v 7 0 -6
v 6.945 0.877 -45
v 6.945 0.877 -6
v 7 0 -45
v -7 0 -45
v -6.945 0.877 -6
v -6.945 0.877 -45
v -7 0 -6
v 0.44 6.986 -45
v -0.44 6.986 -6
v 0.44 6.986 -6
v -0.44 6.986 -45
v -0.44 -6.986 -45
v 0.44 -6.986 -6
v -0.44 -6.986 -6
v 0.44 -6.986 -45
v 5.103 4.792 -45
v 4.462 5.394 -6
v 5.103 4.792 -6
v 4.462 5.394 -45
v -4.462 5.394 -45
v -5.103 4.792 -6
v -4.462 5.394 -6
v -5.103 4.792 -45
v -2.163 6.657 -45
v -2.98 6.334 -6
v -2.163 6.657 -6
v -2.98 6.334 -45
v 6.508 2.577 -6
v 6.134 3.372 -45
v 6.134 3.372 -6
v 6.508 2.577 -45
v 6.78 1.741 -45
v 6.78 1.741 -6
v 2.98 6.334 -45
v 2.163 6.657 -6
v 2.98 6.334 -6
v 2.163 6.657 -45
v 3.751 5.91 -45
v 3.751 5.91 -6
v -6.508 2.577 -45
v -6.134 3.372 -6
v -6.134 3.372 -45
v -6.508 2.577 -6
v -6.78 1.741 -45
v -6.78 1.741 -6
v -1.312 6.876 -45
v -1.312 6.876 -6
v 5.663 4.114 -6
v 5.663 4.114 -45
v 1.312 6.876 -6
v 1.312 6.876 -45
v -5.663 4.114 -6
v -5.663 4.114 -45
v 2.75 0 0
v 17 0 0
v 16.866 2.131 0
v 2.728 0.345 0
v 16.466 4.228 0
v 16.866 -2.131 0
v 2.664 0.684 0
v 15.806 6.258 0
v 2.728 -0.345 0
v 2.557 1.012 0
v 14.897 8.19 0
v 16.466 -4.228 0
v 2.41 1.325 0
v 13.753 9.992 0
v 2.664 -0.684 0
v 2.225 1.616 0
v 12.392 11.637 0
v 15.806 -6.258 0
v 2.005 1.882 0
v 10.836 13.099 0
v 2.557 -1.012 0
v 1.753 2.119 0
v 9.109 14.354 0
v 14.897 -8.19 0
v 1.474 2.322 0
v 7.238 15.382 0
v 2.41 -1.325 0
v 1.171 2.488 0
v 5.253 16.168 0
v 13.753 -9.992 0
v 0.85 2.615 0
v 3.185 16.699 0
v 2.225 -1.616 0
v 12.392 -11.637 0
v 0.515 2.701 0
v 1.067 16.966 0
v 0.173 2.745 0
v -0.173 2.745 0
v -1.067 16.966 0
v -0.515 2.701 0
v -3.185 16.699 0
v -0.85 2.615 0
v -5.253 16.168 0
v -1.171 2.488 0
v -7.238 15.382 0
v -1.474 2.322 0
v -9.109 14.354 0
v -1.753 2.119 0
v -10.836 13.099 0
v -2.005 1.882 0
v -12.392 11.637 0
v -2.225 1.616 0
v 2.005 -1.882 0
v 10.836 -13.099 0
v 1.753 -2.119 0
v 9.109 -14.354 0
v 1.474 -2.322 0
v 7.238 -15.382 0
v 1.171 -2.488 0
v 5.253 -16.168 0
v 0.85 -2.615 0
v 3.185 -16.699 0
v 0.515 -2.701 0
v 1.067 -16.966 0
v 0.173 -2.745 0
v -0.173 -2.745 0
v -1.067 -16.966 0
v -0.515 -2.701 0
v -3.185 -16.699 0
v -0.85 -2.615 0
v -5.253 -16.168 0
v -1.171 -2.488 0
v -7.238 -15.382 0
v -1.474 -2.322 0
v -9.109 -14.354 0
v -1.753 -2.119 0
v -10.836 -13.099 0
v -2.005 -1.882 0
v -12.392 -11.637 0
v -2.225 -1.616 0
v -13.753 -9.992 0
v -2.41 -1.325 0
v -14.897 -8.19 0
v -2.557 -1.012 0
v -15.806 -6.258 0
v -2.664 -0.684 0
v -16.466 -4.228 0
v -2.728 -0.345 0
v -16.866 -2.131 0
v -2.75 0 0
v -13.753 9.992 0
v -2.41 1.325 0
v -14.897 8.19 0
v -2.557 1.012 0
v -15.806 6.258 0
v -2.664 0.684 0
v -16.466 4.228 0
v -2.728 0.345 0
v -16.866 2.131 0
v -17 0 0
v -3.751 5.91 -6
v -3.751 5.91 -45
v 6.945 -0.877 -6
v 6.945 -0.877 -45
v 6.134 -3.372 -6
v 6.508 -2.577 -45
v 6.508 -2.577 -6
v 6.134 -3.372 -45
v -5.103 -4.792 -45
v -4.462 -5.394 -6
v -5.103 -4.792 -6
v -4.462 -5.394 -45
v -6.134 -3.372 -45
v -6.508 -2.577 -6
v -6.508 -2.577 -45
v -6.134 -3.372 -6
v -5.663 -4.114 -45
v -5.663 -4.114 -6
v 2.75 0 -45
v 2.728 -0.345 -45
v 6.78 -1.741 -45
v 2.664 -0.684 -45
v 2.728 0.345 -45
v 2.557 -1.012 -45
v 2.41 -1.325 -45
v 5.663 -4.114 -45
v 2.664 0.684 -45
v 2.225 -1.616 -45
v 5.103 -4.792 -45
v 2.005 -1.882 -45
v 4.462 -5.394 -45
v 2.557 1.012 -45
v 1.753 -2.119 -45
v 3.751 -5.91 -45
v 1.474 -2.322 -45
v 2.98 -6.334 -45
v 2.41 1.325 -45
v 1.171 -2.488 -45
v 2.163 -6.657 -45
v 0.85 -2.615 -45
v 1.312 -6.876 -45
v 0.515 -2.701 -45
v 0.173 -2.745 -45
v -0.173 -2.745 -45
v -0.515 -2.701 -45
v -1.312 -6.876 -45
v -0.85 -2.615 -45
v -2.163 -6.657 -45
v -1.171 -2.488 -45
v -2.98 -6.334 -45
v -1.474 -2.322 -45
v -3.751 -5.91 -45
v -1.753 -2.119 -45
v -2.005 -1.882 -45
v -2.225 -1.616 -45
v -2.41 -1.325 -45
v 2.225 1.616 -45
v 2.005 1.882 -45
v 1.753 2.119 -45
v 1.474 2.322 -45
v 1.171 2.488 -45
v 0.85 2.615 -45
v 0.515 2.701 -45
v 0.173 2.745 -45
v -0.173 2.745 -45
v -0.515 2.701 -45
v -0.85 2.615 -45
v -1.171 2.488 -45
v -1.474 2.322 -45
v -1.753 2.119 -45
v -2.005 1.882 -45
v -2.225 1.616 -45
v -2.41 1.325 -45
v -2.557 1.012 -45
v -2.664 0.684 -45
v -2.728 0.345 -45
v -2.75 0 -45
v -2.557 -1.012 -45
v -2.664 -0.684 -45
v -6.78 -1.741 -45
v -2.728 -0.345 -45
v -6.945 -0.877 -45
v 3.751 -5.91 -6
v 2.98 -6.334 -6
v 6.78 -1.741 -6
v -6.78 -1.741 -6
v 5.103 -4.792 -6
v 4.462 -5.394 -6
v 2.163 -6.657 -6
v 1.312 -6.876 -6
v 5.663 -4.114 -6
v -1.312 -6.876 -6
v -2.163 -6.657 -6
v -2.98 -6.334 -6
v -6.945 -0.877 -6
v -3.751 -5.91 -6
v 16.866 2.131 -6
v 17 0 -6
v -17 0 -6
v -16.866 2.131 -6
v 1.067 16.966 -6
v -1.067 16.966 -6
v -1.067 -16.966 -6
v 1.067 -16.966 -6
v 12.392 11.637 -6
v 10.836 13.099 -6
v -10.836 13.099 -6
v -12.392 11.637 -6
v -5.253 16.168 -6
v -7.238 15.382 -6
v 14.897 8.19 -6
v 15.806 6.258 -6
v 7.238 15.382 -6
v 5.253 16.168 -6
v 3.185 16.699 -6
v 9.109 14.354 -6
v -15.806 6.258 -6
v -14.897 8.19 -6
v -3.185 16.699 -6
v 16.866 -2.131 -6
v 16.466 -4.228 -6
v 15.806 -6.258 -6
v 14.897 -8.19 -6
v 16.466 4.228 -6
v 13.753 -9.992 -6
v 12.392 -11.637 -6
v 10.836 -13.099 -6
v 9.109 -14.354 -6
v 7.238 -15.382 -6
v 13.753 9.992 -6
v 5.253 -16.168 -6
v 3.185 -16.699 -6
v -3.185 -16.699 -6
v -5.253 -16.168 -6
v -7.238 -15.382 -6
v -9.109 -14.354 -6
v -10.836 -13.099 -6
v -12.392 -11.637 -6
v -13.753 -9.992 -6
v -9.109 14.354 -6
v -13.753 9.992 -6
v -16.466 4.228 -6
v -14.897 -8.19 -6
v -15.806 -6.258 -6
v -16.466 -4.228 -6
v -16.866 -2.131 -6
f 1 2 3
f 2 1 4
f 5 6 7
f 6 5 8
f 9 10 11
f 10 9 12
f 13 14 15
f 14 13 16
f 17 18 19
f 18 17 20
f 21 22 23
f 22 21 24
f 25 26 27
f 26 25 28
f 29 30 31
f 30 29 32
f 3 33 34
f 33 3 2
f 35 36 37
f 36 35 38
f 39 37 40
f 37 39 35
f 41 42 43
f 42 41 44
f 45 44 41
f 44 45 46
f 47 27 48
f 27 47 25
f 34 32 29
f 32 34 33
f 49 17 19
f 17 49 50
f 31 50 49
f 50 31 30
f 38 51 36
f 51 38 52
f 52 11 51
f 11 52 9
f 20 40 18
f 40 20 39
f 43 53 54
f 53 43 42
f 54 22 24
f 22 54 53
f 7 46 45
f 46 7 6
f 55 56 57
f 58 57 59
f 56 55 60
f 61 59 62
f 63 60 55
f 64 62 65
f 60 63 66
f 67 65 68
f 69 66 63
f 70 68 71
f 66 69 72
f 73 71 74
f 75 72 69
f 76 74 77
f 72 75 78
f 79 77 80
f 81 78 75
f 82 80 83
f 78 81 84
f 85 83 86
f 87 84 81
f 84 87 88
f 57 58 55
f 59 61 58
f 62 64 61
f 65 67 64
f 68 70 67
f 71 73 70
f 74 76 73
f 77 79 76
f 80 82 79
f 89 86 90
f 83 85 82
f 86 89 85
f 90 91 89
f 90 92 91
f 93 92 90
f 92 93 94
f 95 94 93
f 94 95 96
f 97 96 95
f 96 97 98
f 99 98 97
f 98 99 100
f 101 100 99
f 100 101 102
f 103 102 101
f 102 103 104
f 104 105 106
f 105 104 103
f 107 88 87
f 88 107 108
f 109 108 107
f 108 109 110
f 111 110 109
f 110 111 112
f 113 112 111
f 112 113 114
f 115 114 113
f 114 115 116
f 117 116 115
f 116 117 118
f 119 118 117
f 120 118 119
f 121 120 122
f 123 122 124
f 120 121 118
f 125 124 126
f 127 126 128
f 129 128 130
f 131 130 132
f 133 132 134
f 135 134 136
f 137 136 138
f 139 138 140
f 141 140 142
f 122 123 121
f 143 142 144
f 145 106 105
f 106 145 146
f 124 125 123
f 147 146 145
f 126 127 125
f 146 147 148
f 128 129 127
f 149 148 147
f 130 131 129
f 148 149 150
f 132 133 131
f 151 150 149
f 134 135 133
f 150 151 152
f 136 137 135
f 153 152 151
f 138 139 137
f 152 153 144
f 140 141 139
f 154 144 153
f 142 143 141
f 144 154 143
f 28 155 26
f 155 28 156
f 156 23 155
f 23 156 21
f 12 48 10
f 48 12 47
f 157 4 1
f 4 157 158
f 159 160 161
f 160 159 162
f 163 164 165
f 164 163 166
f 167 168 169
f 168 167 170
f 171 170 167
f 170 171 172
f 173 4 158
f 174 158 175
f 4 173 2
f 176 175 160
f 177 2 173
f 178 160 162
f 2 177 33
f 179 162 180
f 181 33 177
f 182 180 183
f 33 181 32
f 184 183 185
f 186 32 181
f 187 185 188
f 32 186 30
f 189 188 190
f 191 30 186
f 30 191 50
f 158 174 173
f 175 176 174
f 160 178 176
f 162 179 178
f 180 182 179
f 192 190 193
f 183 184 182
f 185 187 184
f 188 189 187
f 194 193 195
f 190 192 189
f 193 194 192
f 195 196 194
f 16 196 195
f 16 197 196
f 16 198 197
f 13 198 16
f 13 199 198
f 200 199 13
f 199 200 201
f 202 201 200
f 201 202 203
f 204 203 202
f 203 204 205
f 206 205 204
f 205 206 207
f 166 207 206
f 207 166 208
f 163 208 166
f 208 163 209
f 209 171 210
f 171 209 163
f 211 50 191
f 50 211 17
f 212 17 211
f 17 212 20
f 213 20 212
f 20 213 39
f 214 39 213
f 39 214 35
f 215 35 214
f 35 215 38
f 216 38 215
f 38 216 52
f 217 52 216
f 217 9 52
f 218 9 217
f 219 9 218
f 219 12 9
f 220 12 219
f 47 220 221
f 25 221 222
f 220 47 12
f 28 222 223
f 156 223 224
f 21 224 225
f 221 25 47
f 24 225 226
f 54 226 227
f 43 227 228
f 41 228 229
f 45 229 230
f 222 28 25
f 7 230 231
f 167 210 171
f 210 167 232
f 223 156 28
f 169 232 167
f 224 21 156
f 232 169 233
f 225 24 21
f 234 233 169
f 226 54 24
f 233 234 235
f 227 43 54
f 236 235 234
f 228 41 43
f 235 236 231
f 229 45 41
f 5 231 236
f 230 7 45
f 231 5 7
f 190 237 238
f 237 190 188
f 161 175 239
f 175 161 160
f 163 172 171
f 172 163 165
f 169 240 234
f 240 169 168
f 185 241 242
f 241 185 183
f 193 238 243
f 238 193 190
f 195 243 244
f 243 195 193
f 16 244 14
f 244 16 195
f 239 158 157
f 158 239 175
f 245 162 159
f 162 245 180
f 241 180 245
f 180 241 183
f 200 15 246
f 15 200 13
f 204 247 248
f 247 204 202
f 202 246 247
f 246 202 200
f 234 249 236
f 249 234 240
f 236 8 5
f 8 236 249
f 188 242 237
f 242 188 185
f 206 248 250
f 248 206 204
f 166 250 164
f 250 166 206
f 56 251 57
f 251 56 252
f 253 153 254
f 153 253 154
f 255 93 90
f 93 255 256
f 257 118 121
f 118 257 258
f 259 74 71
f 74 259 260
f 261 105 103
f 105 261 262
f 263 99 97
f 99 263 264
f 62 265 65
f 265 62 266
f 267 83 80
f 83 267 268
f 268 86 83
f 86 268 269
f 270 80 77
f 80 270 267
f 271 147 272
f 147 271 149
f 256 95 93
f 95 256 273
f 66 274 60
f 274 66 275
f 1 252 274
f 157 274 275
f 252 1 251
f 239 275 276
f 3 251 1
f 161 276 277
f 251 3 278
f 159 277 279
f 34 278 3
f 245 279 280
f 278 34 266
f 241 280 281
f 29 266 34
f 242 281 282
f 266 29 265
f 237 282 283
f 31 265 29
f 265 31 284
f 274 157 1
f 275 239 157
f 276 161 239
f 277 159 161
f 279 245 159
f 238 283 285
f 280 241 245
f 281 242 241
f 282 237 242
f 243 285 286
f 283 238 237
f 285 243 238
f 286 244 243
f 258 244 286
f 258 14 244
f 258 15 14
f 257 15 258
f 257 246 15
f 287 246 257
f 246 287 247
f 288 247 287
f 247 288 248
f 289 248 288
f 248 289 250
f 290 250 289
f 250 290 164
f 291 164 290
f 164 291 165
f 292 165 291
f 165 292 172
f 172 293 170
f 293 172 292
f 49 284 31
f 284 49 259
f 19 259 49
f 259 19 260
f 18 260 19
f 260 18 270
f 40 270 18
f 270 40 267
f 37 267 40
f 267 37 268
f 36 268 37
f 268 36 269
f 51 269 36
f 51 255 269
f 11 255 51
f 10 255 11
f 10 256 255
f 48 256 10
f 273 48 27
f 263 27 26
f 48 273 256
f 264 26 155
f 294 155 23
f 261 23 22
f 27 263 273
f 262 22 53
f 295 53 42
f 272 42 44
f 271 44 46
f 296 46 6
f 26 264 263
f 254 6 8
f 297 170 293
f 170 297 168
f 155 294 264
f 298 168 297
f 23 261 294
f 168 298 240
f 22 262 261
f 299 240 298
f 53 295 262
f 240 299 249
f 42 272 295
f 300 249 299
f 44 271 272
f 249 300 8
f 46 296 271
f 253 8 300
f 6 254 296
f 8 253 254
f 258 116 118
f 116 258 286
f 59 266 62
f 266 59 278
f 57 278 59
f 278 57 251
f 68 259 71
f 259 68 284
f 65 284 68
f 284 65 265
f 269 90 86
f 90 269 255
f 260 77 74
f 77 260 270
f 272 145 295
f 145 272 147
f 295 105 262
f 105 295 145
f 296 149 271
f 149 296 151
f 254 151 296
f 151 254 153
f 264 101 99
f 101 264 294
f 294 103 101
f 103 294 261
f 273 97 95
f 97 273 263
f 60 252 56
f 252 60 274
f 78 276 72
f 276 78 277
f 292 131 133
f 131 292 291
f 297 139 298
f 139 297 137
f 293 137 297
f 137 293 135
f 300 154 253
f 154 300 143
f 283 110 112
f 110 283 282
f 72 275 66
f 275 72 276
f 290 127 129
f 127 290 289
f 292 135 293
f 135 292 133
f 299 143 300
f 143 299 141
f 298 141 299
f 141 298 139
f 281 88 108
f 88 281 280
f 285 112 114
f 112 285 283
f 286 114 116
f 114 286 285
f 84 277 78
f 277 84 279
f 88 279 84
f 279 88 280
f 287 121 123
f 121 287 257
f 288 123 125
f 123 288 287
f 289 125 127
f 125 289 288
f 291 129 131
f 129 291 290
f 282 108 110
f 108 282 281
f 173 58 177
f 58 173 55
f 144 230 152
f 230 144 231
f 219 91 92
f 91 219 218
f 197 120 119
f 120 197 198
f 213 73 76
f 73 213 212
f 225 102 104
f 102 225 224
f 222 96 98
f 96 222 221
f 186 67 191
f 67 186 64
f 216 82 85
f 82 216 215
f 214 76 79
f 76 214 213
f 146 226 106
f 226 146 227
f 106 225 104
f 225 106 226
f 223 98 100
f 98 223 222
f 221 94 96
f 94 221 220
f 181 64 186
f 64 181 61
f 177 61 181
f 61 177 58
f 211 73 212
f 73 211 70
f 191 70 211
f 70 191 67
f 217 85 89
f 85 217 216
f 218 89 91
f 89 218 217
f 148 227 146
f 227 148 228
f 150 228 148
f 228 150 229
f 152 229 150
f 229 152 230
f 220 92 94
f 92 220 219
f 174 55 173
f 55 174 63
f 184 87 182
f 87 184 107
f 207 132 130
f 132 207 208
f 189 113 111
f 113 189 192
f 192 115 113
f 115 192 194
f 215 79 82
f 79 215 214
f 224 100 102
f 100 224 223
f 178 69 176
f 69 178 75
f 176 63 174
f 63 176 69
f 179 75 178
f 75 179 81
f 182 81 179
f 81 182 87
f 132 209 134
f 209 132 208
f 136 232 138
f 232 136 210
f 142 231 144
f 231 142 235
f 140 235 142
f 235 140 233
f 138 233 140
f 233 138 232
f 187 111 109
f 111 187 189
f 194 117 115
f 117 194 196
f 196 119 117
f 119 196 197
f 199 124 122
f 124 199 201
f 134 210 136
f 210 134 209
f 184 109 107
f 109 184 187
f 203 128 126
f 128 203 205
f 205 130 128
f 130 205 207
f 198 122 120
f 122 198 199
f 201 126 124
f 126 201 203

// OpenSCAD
$fn = 50;


difference() {
	union() {
		translate(v = [0, 0, -45.0000000000]) {
			cylinder(h = 45, r = 7.0000000000);
		}
		translate(v = [0, 0, -6.0000000000]) {
			cylinder(h = 6, r = 17.0000000000);
		}
	}
	union() {
		#translate(v = [0, 0, -45]) {
			cylinder(h = 45, r = 2.7500000000);
		}
	}
}
